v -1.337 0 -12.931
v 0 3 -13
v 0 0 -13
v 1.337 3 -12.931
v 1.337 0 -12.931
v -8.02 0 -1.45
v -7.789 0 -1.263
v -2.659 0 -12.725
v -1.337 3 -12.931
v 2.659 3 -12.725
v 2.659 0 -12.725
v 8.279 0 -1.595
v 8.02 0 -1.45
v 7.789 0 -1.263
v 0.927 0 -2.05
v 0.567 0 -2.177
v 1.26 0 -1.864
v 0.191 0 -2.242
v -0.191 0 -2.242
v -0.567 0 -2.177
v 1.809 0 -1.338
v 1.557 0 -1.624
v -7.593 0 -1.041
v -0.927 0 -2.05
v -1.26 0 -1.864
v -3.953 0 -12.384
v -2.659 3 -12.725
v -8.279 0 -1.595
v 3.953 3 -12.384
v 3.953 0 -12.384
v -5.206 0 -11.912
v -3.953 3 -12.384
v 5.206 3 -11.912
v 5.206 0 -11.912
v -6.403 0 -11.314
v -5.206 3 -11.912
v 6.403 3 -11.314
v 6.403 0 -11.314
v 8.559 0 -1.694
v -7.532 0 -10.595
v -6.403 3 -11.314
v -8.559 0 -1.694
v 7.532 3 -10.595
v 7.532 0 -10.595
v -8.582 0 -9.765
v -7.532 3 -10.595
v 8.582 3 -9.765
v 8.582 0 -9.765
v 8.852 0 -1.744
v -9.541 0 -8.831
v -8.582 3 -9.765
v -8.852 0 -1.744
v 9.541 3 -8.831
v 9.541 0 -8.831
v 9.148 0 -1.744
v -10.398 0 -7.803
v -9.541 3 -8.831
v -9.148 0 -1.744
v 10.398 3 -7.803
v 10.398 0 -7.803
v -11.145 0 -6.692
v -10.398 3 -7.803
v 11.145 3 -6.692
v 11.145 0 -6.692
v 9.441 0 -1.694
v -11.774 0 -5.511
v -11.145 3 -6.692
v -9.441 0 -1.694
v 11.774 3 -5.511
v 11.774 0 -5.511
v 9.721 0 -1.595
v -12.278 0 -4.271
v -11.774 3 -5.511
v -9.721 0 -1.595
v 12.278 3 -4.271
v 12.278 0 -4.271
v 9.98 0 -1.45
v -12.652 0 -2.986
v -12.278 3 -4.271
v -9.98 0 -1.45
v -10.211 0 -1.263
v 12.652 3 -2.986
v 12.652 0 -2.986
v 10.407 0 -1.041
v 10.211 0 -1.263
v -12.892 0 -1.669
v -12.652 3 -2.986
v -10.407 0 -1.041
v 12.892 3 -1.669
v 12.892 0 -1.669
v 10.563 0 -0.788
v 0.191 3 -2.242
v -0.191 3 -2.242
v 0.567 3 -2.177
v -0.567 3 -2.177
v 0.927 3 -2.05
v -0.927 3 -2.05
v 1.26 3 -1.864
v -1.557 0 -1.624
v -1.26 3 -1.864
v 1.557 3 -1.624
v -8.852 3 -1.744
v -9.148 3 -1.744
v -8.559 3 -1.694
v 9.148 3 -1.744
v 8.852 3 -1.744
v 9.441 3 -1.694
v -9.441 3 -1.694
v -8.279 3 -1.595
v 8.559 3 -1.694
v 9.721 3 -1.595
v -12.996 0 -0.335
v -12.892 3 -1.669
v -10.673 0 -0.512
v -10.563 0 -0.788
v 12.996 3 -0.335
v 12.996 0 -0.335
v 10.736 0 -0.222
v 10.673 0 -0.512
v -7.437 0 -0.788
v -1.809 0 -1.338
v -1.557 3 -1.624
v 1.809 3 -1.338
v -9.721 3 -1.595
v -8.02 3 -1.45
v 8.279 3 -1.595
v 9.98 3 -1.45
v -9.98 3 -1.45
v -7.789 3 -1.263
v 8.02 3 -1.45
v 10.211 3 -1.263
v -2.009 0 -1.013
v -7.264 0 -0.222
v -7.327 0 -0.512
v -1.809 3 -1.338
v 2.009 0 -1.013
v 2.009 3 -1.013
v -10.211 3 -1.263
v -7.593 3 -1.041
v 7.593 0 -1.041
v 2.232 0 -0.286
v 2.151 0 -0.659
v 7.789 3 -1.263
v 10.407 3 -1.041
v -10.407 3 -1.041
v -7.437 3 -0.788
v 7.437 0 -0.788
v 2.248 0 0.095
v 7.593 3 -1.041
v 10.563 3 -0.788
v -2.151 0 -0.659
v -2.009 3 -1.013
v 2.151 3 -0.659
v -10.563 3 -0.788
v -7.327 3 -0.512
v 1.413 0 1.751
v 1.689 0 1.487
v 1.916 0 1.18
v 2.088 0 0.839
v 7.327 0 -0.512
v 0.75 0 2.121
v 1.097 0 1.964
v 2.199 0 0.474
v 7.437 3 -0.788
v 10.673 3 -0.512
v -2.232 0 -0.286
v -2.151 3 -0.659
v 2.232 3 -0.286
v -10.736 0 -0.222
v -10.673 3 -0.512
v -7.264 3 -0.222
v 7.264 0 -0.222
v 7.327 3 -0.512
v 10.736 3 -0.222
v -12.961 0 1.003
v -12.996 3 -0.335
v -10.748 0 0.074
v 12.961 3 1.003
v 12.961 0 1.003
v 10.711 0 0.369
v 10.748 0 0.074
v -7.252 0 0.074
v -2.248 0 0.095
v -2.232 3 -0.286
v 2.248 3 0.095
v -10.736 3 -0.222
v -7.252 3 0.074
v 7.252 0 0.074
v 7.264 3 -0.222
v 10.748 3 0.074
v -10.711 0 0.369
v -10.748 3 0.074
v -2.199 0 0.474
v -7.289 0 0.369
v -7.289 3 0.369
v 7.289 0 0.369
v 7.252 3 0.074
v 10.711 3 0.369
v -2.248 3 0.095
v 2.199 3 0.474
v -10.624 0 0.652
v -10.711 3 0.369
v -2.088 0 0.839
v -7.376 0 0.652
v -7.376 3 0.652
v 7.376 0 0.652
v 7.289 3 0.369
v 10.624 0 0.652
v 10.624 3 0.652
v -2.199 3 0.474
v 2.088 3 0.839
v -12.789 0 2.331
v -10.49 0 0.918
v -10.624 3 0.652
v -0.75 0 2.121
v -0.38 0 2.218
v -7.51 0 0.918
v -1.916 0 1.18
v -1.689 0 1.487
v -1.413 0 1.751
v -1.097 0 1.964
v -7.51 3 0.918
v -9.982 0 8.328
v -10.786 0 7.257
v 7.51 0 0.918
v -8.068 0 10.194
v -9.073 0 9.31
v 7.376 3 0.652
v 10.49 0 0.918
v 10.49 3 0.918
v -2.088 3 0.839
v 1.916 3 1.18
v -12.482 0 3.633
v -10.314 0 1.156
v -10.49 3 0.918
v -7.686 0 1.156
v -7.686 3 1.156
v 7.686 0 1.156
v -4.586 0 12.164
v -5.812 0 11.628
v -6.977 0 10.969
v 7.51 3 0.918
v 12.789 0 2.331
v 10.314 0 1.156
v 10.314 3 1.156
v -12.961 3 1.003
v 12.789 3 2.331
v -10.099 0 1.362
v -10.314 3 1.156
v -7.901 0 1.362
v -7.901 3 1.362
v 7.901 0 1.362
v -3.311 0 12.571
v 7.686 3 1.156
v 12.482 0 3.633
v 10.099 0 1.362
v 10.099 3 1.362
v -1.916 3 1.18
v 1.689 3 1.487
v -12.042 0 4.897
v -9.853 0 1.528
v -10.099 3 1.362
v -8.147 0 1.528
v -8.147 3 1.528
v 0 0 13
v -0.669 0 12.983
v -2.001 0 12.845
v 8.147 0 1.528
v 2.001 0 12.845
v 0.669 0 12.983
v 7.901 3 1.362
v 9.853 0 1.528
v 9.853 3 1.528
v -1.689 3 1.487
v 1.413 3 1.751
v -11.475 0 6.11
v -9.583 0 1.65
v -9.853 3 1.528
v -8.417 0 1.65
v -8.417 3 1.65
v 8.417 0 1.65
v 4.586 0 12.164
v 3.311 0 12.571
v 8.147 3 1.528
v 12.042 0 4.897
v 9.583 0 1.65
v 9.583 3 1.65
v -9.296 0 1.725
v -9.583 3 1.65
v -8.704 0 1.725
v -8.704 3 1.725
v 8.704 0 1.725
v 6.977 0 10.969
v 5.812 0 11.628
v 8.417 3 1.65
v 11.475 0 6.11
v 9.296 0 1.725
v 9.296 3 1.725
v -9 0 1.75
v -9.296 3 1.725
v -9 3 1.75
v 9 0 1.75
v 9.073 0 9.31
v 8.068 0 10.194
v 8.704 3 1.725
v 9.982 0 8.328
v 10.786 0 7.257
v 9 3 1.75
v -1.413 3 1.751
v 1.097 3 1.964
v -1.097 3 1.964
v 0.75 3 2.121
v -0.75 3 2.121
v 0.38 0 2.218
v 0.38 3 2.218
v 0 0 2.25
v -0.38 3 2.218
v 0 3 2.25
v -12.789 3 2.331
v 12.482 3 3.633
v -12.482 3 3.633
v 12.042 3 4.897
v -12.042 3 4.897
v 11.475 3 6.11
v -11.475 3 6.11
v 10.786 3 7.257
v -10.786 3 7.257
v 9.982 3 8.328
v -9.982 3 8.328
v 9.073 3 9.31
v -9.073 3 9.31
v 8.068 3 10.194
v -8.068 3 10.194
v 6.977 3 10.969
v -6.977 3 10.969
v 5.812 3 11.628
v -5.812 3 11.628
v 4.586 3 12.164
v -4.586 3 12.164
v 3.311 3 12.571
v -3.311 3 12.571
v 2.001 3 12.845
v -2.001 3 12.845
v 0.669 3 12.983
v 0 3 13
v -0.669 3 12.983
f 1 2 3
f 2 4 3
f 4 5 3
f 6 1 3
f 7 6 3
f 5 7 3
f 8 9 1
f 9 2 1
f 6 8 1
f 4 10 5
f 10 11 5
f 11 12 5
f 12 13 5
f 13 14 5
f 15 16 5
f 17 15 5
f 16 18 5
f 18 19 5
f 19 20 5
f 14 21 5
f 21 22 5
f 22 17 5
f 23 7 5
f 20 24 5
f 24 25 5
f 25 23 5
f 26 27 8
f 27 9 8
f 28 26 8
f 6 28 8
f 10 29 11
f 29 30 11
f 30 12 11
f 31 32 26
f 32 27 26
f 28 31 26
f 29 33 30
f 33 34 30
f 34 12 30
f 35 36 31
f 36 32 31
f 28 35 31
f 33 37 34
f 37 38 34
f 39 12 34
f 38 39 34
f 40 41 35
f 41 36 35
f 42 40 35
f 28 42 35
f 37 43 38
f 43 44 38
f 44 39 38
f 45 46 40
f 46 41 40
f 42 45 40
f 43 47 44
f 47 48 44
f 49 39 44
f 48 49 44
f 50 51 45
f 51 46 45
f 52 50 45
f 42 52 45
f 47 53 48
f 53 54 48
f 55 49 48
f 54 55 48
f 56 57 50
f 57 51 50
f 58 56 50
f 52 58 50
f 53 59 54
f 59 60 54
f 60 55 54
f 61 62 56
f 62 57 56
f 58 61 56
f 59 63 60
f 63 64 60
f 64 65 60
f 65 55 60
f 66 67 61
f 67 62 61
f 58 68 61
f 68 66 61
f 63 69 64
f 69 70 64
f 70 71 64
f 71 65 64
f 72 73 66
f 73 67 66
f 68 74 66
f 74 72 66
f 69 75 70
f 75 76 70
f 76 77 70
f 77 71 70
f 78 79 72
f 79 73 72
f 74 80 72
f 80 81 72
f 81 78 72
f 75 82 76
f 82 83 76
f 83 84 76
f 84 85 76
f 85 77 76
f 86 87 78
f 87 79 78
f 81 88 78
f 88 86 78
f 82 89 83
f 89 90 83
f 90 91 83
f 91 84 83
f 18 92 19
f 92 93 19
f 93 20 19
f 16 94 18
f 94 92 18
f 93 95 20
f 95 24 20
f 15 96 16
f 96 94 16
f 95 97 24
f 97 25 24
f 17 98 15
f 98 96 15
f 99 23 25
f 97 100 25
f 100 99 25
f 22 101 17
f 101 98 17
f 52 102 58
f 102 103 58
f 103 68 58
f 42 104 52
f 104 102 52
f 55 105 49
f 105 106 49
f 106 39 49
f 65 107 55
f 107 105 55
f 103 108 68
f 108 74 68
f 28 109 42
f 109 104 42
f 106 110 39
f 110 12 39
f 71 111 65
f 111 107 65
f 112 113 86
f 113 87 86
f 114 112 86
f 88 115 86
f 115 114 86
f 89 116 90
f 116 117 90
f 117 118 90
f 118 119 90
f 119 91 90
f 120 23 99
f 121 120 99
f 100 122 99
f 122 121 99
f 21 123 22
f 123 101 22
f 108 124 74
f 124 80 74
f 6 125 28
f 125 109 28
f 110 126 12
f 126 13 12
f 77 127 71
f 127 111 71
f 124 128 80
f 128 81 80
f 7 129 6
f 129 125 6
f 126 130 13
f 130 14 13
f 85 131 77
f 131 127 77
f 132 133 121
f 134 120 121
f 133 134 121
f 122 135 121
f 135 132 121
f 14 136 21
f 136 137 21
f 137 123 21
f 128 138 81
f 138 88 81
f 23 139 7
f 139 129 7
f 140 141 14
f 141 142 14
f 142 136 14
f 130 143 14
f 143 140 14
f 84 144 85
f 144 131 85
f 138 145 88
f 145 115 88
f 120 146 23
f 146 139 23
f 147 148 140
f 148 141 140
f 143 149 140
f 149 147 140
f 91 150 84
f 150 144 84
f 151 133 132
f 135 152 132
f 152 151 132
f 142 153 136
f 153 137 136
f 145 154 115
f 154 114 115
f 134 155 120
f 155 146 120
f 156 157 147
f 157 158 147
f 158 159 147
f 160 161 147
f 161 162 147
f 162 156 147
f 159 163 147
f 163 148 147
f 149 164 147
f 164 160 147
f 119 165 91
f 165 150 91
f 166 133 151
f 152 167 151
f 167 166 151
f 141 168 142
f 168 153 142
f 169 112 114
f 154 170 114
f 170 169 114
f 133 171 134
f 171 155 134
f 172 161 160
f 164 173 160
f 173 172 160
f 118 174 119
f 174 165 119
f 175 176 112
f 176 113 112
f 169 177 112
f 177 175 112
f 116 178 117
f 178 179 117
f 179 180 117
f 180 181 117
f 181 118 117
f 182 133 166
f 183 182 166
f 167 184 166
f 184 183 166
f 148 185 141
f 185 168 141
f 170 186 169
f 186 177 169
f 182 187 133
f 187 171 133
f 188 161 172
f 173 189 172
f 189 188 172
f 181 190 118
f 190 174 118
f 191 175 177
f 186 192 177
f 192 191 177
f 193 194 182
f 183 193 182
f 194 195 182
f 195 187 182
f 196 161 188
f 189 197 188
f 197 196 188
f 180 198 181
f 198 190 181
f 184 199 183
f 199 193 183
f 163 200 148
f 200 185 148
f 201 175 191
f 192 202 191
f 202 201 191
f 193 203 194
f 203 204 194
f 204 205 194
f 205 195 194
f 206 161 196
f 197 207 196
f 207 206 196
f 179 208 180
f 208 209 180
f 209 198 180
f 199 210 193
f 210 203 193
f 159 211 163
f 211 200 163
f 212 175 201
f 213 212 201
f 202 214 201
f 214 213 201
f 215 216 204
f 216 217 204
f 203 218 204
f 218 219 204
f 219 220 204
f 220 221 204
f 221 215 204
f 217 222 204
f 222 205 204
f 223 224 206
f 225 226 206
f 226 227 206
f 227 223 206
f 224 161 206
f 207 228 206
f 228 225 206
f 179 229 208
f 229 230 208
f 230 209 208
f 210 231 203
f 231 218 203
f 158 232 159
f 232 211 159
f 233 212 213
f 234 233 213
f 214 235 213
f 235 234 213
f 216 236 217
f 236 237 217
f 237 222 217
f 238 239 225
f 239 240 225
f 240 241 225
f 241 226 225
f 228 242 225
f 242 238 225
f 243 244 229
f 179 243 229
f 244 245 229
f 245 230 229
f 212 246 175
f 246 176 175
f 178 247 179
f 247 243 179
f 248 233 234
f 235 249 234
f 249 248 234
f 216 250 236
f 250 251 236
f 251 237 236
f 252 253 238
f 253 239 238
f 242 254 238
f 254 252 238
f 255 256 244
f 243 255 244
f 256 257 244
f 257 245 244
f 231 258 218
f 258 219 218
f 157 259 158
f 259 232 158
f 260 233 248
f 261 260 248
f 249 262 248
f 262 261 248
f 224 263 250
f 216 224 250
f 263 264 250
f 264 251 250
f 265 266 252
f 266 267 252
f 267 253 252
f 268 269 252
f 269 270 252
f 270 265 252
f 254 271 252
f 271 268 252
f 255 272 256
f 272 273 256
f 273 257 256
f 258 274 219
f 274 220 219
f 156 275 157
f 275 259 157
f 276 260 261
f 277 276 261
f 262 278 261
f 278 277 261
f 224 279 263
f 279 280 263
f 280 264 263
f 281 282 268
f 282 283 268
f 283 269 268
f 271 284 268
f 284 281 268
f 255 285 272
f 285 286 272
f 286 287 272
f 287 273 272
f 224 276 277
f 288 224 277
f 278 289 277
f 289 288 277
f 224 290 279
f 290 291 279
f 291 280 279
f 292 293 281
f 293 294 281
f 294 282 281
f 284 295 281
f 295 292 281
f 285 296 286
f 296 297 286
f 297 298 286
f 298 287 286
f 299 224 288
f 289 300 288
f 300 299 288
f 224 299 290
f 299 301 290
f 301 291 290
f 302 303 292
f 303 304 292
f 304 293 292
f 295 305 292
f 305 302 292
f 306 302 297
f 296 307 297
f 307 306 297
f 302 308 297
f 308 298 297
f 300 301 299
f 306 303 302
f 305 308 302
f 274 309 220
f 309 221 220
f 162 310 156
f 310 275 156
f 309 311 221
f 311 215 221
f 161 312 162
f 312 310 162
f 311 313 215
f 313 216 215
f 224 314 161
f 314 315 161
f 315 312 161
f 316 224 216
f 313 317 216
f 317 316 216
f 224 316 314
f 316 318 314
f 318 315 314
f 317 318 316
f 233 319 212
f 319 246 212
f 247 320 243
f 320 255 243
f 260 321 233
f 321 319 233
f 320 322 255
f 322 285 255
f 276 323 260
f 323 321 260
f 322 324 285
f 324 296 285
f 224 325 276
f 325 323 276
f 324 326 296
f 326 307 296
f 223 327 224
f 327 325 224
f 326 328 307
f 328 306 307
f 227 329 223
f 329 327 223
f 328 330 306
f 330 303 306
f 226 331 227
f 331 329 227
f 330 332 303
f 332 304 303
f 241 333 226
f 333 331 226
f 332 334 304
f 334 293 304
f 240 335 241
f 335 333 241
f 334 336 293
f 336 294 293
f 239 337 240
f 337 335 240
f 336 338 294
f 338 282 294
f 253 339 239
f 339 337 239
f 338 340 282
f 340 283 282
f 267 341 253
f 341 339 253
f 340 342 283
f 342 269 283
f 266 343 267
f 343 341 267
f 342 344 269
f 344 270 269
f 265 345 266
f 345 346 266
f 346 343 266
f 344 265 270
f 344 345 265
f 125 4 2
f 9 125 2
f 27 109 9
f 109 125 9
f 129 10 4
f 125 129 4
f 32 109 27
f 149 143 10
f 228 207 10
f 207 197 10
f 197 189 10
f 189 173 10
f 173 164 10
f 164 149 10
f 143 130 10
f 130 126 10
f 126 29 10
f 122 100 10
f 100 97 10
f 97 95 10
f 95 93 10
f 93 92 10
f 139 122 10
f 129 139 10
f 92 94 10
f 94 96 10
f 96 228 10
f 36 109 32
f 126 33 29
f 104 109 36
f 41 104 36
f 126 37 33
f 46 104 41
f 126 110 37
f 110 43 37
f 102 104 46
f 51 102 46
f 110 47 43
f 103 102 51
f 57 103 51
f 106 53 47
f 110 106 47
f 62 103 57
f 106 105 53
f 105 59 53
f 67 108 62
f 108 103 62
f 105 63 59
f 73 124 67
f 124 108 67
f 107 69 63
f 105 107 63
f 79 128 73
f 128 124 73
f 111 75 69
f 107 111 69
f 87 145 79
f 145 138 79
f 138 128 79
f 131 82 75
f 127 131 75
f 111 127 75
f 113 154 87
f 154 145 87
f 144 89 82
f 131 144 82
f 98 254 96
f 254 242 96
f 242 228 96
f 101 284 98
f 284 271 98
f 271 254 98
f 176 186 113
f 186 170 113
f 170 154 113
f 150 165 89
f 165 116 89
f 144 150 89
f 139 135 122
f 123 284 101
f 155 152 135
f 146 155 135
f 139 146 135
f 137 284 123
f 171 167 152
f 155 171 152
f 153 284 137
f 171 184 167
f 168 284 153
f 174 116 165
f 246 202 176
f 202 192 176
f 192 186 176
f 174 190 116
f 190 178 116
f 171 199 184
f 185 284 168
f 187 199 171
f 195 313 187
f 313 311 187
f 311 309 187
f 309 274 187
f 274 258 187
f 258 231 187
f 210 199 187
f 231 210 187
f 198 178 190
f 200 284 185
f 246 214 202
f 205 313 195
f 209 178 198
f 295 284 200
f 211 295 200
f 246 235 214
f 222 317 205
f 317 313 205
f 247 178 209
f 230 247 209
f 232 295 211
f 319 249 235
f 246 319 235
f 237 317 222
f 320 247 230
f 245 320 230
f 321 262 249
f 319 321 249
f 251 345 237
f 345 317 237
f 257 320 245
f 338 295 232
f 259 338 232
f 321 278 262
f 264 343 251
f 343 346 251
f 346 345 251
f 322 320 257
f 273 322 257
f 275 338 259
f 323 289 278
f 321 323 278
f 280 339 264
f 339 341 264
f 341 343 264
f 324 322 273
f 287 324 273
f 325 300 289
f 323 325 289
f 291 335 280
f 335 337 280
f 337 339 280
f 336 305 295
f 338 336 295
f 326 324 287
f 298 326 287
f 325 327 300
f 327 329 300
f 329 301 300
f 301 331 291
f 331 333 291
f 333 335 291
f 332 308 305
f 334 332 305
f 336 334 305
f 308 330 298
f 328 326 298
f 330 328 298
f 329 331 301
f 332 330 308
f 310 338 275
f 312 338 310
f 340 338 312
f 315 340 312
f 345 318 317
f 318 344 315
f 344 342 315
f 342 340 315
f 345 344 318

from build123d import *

# Parameters (mm, degrees)
SKETCH1_R           = 13
BOSS_EXTRUDE1_DEPTH = 3
SKETCH3_R           = 2.25
CUT_EXTRUDE1_DEPTH  = 3
SKETCH2_R           = 1.75
CUT_EXTRUDE2_DEPTH  = 3


with BuildPart() as part:
    # Sketch1 → Boss-Extrude1 (new body)
    with BuildSketch(Plane(origin=(0, 0, 0), x_dir=(1, 0, 0), z_dir=(0, 1, 0))):
        with Locations(Location((0, 0, 0), (0, 0, 270))):
            Circle(SKETCH1_R)
    extrude(amount=BOSS_EXTRUDE1_DEPTH)

    # Sketch3 → Cut-Extrude1 (cut)
    with BuildSketch(Plane(origin=(0, 3, 0), x_dir=(1, 0, 0), z_dir=(0, 1, 0))):
        with Locations(Location((0, 0, 0), (0, 0, 270))):
            Circle(SKETCH3_R)
    extrude(amount=-CUT_EXTRUDE1_DEPTH, mode=Mode.SUBTRACT)

    # Sketch2 → Cut-Extrude2 (cut)
    with BuildSketch(Plane(origin=(0, 3, 0), x_dir=(1, 0, 0), z_dir=(0, 1, 0))):
        with Locations(Location((9, 0, 0), (0, 0, 270))):
            Circle(SKETCH2_R)
    cut_extrude2 = extrude(amount=-CUT_EXTRUDE2_DEPTH, mode=Mode.SUBTRACT)

    # Mirror1: Cut-Extrude2 across plane
    add(cut_extrude2.mirror(Plane(origin=(0, 0, 0), x_dir=(0, 0, 1), z_dir=(1, 0, 0))), mode=Mode.SUBTRACT)


solid = part.part
